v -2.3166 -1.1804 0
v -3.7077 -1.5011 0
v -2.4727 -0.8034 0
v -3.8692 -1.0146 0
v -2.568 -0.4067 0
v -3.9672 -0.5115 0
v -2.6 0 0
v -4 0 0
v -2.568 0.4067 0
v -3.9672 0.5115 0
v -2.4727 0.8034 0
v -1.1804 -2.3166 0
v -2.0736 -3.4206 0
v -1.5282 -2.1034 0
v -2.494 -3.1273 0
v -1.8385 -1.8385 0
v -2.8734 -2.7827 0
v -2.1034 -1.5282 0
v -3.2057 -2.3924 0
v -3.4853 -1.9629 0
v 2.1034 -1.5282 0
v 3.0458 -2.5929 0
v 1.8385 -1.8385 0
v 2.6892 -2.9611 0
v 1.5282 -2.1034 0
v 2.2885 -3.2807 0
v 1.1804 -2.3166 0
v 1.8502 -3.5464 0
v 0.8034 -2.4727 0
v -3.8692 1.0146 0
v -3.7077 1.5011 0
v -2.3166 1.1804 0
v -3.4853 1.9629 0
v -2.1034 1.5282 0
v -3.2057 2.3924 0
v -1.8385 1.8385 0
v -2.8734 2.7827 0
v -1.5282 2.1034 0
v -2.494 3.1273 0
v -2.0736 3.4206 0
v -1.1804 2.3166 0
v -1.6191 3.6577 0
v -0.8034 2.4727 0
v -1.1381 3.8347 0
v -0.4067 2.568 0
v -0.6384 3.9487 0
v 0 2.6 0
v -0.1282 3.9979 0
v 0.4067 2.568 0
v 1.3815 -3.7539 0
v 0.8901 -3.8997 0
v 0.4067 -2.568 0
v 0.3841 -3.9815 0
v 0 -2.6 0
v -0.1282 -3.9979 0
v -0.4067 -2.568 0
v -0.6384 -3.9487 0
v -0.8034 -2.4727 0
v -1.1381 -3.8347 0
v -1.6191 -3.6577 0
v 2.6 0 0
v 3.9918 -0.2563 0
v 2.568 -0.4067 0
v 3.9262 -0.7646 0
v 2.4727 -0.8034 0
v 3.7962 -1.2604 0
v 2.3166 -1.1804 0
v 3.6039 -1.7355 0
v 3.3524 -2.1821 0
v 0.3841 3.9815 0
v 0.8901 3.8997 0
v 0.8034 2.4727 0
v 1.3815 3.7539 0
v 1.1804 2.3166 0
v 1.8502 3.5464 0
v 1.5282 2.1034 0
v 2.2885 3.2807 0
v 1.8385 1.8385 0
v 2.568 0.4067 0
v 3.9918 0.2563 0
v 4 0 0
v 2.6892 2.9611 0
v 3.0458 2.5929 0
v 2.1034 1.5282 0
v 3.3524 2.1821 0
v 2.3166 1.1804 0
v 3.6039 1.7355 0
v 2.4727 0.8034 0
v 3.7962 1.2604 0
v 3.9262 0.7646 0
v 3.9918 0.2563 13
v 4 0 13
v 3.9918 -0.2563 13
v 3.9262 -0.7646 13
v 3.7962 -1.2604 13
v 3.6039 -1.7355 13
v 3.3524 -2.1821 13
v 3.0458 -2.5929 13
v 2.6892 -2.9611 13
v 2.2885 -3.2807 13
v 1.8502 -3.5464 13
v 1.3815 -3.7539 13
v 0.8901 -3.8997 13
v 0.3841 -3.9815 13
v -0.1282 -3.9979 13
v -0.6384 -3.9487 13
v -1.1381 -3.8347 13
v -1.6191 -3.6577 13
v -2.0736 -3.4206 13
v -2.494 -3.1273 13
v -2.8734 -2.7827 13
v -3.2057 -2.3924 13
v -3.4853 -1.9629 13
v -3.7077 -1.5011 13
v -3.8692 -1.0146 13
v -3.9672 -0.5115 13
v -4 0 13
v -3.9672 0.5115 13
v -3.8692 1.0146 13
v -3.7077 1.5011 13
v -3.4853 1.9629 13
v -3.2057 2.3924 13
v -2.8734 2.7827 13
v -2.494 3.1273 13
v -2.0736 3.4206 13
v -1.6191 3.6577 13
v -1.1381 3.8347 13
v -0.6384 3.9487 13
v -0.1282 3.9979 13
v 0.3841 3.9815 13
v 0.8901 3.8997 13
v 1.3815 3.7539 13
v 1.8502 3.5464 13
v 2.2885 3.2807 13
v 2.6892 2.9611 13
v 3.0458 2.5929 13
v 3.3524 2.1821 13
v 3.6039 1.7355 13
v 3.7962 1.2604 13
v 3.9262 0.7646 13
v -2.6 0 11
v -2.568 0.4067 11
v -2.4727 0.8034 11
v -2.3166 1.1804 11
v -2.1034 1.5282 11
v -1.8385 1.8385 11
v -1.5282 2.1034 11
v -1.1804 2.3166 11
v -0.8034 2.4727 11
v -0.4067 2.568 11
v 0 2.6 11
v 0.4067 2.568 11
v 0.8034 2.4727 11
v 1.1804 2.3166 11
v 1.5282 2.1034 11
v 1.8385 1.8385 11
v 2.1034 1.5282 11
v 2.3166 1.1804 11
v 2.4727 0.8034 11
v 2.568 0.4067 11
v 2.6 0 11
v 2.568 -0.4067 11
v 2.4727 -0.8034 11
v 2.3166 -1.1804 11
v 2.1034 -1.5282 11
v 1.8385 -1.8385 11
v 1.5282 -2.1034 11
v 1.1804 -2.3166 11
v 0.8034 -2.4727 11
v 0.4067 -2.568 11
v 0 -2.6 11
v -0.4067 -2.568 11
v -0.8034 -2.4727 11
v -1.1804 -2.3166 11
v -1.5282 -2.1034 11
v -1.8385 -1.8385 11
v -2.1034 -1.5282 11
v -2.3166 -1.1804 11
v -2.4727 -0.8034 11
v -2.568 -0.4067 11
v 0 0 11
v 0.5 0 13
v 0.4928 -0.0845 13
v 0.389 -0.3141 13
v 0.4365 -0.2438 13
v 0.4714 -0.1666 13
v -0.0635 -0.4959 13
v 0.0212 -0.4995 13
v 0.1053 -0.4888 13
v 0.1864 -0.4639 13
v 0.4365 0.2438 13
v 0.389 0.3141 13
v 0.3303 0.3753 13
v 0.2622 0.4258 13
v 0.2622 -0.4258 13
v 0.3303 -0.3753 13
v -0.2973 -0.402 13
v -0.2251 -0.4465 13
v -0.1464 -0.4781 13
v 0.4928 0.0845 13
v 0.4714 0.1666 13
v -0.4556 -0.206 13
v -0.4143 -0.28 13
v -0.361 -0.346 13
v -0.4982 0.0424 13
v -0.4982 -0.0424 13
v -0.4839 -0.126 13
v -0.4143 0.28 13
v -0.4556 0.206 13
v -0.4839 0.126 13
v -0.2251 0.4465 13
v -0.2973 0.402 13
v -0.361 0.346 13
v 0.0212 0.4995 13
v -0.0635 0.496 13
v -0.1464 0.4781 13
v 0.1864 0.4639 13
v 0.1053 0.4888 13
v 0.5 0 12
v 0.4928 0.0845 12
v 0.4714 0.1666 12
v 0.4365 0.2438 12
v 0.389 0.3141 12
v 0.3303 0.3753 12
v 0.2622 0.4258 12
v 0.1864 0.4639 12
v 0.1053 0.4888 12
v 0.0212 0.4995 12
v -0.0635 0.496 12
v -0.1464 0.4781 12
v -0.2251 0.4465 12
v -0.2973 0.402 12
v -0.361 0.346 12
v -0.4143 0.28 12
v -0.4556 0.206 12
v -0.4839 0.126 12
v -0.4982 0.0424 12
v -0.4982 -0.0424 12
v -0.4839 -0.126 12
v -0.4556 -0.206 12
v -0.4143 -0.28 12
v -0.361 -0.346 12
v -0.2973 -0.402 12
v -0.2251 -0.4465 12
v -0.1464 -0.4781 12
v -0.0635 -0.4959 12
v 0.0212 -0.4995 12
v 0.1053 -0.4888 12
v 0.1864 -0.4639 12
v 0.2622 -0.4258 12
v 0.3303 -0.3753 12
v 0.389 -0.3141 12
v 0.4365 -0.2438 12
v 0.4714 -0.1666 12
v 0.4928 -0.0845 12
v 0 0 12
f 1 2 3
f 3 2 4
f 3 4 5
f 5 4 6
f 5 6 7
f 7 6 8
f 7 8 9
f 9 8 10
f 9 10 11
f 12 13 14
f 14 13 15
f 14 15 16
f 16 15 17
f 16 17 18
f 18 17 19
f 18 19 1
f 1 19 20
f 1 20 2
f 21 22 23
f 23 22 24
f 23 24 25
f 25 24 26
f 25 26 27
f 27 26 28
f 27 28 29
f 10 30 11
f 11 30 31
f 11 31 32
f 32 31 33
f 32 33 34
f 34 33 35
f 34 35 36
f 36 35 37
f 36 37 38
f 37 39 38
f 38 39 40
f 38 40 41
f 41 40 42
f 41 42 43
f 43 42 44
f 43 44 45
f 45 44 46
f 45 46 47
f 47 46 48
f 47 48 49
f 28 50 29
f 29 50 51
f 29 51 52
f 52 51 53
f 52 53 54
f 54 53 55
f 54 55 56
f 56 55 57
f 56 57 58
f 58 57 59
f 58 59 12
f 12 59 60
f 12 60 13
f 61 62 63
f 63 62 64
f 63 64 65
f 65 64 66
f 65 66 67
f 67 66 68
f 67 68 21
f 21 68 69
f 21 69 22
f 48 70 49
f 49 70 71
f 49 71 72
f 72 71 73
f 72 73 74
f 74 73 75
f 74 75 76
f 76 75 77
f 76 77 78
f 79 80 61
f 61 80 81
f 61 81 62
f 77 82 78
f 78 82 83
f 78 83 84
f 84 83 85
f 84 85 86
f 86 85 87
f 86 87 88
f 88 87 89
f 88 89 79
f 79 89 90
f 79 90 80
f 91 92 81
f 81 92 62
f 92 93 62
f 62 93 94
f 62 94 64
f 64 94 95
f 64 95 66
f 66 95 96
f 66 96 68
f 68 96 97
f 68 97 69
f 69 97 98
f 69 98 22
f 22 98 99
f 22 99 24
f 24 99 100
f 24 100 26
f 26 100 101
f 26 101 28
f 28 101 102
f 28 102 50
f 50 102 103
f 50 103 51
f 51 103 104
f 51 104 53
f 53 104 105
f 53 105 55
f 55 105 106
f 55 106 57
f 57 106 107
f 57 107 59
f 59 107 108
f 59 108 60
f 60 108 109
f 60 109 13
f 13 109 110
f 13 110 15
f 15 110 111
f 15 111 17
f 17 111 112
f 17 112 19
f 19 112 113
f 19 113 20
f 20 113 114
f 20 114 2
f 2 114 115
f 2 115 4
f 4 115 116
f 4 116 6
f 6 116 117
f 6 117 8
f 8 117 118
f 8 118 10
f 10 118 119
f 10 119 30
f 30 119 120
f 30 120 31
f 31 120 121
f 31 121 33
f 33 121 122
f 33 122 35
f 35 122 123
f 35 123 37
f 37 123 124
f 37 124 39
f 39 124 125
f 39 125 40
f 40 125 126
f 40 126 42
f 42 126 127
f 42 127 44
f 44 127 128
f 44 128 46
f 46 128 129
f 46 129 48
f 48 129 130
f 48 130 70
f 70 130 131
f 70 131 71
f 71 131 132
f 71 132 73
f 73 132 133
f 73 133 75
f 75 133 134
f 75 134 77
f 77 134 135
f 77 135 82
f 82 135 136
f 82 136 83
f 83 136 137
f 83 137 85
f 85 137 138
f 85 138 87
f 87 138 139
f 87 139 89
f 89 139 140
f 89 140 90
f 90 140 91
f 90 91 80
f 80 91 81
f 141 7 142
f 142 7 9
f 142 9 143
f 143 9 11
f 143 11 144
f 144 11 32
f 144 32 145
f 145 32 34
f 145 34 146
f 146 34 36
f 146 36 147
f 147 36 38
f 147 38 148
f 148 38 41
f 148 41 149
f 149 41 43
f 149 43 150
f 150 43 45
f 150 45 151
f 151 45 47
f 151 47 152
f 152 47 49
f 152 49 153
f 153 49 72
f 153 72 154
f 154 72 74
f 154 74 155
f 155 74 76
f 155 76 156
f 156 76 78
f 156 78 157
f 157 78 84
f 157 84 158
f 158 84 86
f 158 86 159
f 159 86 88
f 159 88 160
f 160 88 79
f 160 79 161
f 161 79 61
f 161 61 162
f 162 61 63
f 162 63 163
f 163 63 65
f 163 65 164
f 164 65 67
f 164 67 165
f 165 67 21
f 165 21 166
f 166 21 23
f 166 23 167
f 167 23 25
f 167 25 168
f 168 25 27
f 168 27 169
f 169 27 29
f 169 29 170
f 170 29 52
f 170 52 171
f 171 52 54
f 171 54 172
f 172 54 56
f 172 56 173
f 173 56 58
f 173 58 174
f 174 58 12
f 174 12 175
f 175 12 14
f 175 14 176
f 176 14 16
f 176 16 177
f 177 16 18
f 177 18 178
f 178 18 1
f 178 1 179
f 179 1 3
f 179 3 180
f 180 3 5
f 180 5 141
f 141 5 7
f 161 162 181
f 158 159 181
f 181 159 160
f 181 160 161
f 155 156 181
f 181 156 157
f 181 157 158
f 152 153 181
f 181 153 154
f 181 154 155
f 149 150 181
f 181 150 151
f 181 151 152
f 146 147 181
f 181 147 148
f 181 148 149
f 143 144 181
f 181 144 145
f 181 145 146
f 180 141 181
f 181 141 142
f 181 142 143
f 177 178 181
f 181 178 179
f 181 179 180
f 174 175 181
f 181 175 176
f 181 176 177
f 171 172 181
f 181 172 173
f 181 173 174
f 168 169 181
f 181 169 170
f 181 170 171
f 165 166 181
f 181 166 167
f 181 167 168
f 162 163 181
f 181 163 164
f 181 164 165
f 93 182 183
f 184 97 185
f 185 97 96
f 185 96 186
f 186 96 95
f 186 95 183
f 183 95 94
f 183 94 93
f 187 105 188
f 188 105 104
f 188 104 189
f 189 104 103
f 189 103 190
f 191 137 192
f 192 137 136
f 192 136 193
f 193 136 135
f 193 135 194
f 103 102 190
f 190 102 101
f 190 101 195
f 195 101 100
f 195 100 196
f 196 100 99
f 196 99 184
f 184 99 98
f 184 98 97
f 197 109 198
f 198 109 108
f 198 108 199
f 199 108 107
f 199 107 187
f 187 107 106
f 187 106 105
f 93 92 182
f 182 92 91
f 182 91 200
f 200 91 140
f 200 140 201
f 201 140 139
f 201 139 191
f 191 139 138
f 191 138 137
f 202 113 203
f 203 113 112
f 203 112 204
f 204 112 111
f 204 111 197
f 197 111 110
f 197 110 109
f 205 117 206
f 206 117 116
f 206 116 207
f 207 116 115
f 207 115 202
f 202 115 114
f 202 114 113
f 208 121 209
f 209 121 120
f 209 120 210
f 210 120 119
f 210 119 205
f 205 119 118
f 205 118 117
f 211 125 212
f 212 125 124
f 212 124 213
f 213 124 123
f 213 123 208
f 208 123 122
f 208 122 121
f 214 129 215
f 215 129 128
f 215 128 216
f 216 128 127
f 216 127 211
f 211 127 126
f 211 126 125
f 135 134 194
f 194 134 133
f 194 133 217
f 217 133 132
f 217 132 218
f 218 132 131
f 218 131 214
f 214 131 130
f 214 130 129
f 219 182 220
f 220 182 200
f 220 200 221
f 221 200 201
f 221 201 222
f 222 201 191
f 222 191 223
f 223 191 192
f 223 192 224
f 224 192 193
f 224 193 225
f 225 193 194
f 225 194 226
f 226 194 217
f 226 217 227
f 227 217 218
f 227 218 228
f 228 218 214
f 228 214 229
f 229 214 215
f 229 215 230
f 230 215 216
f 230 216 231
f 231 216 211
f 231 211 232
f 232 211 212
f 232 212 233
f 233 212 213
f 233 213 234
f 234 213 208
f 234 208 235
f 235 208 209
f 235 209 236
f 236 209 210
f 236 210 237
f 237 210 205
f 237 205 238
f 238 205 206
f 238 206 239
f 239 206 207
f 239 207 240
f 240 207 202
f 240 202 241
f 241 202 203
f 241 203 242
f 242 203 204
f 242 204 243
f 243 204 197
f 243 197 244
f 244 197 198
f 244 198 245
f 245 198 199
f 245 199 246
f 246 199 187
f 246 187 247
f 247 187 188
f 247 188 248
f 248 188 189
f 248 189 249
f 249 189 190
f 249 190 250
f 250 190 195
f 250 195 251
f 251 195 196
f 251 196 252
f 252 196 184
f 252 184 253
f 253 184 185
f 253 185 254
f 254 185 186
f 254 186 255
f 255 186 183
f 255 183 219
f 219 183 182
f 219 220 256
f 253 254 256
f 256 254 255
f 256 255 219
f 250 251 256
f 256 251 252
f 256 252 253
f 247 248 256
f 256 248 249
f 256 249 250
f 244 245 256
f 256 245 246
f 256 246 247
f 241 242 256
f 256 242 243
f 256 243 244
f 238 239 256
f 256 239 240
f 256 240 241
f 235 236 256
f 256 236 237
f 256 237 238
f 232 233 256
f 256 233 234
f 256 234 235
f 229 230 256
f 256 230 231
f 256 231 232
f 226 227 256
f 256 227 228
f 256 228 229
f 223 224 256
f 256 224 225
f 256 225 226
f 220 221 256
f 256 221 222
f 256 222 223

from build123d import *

# Parameters (mm, degrees)
SKETCH1_R           = 4
SKETCH1_R_2         = 2.6
BOSS_EXTRUDE3_DEPTH = 11
SKETCH3_R           = 4
BOSS_EXTRUDE4_DEPTH = 2
SKETCH4_R           = 0.5
CUT_EXTRUDE1_DEPTH  = 1


with BuildPart() as part:
    # Sketch1 → Boss-Extrude3 (new body)
    with BuildSketch(Plane.XY):
        Circle(SKETCH1_R)
        Circle(SKETCH1_R_2, mode=Mode.SUBTRACT)
    extrude(amount=BOSS_EXTRUDE3_DEPTH)

    # Sketch3 → Boss-Extrude4 (add)
    with BuildSketch(Plane.XY.offset(11)):
        Circle(SKETCH3_R)
    extrude(amount=BOSS_EXTRUDE4_DEPTH)

    # Sketch4 → Cut-Extrude1 (cut)
    with BuildSketch(Plane.XY.offset(13)):
        Circle(SKETCH4_R)
    extrude(amount=-CUT_EXTRUDE1_DEPTH, mode=Mode.SUBTRACT)


solid = part.part
